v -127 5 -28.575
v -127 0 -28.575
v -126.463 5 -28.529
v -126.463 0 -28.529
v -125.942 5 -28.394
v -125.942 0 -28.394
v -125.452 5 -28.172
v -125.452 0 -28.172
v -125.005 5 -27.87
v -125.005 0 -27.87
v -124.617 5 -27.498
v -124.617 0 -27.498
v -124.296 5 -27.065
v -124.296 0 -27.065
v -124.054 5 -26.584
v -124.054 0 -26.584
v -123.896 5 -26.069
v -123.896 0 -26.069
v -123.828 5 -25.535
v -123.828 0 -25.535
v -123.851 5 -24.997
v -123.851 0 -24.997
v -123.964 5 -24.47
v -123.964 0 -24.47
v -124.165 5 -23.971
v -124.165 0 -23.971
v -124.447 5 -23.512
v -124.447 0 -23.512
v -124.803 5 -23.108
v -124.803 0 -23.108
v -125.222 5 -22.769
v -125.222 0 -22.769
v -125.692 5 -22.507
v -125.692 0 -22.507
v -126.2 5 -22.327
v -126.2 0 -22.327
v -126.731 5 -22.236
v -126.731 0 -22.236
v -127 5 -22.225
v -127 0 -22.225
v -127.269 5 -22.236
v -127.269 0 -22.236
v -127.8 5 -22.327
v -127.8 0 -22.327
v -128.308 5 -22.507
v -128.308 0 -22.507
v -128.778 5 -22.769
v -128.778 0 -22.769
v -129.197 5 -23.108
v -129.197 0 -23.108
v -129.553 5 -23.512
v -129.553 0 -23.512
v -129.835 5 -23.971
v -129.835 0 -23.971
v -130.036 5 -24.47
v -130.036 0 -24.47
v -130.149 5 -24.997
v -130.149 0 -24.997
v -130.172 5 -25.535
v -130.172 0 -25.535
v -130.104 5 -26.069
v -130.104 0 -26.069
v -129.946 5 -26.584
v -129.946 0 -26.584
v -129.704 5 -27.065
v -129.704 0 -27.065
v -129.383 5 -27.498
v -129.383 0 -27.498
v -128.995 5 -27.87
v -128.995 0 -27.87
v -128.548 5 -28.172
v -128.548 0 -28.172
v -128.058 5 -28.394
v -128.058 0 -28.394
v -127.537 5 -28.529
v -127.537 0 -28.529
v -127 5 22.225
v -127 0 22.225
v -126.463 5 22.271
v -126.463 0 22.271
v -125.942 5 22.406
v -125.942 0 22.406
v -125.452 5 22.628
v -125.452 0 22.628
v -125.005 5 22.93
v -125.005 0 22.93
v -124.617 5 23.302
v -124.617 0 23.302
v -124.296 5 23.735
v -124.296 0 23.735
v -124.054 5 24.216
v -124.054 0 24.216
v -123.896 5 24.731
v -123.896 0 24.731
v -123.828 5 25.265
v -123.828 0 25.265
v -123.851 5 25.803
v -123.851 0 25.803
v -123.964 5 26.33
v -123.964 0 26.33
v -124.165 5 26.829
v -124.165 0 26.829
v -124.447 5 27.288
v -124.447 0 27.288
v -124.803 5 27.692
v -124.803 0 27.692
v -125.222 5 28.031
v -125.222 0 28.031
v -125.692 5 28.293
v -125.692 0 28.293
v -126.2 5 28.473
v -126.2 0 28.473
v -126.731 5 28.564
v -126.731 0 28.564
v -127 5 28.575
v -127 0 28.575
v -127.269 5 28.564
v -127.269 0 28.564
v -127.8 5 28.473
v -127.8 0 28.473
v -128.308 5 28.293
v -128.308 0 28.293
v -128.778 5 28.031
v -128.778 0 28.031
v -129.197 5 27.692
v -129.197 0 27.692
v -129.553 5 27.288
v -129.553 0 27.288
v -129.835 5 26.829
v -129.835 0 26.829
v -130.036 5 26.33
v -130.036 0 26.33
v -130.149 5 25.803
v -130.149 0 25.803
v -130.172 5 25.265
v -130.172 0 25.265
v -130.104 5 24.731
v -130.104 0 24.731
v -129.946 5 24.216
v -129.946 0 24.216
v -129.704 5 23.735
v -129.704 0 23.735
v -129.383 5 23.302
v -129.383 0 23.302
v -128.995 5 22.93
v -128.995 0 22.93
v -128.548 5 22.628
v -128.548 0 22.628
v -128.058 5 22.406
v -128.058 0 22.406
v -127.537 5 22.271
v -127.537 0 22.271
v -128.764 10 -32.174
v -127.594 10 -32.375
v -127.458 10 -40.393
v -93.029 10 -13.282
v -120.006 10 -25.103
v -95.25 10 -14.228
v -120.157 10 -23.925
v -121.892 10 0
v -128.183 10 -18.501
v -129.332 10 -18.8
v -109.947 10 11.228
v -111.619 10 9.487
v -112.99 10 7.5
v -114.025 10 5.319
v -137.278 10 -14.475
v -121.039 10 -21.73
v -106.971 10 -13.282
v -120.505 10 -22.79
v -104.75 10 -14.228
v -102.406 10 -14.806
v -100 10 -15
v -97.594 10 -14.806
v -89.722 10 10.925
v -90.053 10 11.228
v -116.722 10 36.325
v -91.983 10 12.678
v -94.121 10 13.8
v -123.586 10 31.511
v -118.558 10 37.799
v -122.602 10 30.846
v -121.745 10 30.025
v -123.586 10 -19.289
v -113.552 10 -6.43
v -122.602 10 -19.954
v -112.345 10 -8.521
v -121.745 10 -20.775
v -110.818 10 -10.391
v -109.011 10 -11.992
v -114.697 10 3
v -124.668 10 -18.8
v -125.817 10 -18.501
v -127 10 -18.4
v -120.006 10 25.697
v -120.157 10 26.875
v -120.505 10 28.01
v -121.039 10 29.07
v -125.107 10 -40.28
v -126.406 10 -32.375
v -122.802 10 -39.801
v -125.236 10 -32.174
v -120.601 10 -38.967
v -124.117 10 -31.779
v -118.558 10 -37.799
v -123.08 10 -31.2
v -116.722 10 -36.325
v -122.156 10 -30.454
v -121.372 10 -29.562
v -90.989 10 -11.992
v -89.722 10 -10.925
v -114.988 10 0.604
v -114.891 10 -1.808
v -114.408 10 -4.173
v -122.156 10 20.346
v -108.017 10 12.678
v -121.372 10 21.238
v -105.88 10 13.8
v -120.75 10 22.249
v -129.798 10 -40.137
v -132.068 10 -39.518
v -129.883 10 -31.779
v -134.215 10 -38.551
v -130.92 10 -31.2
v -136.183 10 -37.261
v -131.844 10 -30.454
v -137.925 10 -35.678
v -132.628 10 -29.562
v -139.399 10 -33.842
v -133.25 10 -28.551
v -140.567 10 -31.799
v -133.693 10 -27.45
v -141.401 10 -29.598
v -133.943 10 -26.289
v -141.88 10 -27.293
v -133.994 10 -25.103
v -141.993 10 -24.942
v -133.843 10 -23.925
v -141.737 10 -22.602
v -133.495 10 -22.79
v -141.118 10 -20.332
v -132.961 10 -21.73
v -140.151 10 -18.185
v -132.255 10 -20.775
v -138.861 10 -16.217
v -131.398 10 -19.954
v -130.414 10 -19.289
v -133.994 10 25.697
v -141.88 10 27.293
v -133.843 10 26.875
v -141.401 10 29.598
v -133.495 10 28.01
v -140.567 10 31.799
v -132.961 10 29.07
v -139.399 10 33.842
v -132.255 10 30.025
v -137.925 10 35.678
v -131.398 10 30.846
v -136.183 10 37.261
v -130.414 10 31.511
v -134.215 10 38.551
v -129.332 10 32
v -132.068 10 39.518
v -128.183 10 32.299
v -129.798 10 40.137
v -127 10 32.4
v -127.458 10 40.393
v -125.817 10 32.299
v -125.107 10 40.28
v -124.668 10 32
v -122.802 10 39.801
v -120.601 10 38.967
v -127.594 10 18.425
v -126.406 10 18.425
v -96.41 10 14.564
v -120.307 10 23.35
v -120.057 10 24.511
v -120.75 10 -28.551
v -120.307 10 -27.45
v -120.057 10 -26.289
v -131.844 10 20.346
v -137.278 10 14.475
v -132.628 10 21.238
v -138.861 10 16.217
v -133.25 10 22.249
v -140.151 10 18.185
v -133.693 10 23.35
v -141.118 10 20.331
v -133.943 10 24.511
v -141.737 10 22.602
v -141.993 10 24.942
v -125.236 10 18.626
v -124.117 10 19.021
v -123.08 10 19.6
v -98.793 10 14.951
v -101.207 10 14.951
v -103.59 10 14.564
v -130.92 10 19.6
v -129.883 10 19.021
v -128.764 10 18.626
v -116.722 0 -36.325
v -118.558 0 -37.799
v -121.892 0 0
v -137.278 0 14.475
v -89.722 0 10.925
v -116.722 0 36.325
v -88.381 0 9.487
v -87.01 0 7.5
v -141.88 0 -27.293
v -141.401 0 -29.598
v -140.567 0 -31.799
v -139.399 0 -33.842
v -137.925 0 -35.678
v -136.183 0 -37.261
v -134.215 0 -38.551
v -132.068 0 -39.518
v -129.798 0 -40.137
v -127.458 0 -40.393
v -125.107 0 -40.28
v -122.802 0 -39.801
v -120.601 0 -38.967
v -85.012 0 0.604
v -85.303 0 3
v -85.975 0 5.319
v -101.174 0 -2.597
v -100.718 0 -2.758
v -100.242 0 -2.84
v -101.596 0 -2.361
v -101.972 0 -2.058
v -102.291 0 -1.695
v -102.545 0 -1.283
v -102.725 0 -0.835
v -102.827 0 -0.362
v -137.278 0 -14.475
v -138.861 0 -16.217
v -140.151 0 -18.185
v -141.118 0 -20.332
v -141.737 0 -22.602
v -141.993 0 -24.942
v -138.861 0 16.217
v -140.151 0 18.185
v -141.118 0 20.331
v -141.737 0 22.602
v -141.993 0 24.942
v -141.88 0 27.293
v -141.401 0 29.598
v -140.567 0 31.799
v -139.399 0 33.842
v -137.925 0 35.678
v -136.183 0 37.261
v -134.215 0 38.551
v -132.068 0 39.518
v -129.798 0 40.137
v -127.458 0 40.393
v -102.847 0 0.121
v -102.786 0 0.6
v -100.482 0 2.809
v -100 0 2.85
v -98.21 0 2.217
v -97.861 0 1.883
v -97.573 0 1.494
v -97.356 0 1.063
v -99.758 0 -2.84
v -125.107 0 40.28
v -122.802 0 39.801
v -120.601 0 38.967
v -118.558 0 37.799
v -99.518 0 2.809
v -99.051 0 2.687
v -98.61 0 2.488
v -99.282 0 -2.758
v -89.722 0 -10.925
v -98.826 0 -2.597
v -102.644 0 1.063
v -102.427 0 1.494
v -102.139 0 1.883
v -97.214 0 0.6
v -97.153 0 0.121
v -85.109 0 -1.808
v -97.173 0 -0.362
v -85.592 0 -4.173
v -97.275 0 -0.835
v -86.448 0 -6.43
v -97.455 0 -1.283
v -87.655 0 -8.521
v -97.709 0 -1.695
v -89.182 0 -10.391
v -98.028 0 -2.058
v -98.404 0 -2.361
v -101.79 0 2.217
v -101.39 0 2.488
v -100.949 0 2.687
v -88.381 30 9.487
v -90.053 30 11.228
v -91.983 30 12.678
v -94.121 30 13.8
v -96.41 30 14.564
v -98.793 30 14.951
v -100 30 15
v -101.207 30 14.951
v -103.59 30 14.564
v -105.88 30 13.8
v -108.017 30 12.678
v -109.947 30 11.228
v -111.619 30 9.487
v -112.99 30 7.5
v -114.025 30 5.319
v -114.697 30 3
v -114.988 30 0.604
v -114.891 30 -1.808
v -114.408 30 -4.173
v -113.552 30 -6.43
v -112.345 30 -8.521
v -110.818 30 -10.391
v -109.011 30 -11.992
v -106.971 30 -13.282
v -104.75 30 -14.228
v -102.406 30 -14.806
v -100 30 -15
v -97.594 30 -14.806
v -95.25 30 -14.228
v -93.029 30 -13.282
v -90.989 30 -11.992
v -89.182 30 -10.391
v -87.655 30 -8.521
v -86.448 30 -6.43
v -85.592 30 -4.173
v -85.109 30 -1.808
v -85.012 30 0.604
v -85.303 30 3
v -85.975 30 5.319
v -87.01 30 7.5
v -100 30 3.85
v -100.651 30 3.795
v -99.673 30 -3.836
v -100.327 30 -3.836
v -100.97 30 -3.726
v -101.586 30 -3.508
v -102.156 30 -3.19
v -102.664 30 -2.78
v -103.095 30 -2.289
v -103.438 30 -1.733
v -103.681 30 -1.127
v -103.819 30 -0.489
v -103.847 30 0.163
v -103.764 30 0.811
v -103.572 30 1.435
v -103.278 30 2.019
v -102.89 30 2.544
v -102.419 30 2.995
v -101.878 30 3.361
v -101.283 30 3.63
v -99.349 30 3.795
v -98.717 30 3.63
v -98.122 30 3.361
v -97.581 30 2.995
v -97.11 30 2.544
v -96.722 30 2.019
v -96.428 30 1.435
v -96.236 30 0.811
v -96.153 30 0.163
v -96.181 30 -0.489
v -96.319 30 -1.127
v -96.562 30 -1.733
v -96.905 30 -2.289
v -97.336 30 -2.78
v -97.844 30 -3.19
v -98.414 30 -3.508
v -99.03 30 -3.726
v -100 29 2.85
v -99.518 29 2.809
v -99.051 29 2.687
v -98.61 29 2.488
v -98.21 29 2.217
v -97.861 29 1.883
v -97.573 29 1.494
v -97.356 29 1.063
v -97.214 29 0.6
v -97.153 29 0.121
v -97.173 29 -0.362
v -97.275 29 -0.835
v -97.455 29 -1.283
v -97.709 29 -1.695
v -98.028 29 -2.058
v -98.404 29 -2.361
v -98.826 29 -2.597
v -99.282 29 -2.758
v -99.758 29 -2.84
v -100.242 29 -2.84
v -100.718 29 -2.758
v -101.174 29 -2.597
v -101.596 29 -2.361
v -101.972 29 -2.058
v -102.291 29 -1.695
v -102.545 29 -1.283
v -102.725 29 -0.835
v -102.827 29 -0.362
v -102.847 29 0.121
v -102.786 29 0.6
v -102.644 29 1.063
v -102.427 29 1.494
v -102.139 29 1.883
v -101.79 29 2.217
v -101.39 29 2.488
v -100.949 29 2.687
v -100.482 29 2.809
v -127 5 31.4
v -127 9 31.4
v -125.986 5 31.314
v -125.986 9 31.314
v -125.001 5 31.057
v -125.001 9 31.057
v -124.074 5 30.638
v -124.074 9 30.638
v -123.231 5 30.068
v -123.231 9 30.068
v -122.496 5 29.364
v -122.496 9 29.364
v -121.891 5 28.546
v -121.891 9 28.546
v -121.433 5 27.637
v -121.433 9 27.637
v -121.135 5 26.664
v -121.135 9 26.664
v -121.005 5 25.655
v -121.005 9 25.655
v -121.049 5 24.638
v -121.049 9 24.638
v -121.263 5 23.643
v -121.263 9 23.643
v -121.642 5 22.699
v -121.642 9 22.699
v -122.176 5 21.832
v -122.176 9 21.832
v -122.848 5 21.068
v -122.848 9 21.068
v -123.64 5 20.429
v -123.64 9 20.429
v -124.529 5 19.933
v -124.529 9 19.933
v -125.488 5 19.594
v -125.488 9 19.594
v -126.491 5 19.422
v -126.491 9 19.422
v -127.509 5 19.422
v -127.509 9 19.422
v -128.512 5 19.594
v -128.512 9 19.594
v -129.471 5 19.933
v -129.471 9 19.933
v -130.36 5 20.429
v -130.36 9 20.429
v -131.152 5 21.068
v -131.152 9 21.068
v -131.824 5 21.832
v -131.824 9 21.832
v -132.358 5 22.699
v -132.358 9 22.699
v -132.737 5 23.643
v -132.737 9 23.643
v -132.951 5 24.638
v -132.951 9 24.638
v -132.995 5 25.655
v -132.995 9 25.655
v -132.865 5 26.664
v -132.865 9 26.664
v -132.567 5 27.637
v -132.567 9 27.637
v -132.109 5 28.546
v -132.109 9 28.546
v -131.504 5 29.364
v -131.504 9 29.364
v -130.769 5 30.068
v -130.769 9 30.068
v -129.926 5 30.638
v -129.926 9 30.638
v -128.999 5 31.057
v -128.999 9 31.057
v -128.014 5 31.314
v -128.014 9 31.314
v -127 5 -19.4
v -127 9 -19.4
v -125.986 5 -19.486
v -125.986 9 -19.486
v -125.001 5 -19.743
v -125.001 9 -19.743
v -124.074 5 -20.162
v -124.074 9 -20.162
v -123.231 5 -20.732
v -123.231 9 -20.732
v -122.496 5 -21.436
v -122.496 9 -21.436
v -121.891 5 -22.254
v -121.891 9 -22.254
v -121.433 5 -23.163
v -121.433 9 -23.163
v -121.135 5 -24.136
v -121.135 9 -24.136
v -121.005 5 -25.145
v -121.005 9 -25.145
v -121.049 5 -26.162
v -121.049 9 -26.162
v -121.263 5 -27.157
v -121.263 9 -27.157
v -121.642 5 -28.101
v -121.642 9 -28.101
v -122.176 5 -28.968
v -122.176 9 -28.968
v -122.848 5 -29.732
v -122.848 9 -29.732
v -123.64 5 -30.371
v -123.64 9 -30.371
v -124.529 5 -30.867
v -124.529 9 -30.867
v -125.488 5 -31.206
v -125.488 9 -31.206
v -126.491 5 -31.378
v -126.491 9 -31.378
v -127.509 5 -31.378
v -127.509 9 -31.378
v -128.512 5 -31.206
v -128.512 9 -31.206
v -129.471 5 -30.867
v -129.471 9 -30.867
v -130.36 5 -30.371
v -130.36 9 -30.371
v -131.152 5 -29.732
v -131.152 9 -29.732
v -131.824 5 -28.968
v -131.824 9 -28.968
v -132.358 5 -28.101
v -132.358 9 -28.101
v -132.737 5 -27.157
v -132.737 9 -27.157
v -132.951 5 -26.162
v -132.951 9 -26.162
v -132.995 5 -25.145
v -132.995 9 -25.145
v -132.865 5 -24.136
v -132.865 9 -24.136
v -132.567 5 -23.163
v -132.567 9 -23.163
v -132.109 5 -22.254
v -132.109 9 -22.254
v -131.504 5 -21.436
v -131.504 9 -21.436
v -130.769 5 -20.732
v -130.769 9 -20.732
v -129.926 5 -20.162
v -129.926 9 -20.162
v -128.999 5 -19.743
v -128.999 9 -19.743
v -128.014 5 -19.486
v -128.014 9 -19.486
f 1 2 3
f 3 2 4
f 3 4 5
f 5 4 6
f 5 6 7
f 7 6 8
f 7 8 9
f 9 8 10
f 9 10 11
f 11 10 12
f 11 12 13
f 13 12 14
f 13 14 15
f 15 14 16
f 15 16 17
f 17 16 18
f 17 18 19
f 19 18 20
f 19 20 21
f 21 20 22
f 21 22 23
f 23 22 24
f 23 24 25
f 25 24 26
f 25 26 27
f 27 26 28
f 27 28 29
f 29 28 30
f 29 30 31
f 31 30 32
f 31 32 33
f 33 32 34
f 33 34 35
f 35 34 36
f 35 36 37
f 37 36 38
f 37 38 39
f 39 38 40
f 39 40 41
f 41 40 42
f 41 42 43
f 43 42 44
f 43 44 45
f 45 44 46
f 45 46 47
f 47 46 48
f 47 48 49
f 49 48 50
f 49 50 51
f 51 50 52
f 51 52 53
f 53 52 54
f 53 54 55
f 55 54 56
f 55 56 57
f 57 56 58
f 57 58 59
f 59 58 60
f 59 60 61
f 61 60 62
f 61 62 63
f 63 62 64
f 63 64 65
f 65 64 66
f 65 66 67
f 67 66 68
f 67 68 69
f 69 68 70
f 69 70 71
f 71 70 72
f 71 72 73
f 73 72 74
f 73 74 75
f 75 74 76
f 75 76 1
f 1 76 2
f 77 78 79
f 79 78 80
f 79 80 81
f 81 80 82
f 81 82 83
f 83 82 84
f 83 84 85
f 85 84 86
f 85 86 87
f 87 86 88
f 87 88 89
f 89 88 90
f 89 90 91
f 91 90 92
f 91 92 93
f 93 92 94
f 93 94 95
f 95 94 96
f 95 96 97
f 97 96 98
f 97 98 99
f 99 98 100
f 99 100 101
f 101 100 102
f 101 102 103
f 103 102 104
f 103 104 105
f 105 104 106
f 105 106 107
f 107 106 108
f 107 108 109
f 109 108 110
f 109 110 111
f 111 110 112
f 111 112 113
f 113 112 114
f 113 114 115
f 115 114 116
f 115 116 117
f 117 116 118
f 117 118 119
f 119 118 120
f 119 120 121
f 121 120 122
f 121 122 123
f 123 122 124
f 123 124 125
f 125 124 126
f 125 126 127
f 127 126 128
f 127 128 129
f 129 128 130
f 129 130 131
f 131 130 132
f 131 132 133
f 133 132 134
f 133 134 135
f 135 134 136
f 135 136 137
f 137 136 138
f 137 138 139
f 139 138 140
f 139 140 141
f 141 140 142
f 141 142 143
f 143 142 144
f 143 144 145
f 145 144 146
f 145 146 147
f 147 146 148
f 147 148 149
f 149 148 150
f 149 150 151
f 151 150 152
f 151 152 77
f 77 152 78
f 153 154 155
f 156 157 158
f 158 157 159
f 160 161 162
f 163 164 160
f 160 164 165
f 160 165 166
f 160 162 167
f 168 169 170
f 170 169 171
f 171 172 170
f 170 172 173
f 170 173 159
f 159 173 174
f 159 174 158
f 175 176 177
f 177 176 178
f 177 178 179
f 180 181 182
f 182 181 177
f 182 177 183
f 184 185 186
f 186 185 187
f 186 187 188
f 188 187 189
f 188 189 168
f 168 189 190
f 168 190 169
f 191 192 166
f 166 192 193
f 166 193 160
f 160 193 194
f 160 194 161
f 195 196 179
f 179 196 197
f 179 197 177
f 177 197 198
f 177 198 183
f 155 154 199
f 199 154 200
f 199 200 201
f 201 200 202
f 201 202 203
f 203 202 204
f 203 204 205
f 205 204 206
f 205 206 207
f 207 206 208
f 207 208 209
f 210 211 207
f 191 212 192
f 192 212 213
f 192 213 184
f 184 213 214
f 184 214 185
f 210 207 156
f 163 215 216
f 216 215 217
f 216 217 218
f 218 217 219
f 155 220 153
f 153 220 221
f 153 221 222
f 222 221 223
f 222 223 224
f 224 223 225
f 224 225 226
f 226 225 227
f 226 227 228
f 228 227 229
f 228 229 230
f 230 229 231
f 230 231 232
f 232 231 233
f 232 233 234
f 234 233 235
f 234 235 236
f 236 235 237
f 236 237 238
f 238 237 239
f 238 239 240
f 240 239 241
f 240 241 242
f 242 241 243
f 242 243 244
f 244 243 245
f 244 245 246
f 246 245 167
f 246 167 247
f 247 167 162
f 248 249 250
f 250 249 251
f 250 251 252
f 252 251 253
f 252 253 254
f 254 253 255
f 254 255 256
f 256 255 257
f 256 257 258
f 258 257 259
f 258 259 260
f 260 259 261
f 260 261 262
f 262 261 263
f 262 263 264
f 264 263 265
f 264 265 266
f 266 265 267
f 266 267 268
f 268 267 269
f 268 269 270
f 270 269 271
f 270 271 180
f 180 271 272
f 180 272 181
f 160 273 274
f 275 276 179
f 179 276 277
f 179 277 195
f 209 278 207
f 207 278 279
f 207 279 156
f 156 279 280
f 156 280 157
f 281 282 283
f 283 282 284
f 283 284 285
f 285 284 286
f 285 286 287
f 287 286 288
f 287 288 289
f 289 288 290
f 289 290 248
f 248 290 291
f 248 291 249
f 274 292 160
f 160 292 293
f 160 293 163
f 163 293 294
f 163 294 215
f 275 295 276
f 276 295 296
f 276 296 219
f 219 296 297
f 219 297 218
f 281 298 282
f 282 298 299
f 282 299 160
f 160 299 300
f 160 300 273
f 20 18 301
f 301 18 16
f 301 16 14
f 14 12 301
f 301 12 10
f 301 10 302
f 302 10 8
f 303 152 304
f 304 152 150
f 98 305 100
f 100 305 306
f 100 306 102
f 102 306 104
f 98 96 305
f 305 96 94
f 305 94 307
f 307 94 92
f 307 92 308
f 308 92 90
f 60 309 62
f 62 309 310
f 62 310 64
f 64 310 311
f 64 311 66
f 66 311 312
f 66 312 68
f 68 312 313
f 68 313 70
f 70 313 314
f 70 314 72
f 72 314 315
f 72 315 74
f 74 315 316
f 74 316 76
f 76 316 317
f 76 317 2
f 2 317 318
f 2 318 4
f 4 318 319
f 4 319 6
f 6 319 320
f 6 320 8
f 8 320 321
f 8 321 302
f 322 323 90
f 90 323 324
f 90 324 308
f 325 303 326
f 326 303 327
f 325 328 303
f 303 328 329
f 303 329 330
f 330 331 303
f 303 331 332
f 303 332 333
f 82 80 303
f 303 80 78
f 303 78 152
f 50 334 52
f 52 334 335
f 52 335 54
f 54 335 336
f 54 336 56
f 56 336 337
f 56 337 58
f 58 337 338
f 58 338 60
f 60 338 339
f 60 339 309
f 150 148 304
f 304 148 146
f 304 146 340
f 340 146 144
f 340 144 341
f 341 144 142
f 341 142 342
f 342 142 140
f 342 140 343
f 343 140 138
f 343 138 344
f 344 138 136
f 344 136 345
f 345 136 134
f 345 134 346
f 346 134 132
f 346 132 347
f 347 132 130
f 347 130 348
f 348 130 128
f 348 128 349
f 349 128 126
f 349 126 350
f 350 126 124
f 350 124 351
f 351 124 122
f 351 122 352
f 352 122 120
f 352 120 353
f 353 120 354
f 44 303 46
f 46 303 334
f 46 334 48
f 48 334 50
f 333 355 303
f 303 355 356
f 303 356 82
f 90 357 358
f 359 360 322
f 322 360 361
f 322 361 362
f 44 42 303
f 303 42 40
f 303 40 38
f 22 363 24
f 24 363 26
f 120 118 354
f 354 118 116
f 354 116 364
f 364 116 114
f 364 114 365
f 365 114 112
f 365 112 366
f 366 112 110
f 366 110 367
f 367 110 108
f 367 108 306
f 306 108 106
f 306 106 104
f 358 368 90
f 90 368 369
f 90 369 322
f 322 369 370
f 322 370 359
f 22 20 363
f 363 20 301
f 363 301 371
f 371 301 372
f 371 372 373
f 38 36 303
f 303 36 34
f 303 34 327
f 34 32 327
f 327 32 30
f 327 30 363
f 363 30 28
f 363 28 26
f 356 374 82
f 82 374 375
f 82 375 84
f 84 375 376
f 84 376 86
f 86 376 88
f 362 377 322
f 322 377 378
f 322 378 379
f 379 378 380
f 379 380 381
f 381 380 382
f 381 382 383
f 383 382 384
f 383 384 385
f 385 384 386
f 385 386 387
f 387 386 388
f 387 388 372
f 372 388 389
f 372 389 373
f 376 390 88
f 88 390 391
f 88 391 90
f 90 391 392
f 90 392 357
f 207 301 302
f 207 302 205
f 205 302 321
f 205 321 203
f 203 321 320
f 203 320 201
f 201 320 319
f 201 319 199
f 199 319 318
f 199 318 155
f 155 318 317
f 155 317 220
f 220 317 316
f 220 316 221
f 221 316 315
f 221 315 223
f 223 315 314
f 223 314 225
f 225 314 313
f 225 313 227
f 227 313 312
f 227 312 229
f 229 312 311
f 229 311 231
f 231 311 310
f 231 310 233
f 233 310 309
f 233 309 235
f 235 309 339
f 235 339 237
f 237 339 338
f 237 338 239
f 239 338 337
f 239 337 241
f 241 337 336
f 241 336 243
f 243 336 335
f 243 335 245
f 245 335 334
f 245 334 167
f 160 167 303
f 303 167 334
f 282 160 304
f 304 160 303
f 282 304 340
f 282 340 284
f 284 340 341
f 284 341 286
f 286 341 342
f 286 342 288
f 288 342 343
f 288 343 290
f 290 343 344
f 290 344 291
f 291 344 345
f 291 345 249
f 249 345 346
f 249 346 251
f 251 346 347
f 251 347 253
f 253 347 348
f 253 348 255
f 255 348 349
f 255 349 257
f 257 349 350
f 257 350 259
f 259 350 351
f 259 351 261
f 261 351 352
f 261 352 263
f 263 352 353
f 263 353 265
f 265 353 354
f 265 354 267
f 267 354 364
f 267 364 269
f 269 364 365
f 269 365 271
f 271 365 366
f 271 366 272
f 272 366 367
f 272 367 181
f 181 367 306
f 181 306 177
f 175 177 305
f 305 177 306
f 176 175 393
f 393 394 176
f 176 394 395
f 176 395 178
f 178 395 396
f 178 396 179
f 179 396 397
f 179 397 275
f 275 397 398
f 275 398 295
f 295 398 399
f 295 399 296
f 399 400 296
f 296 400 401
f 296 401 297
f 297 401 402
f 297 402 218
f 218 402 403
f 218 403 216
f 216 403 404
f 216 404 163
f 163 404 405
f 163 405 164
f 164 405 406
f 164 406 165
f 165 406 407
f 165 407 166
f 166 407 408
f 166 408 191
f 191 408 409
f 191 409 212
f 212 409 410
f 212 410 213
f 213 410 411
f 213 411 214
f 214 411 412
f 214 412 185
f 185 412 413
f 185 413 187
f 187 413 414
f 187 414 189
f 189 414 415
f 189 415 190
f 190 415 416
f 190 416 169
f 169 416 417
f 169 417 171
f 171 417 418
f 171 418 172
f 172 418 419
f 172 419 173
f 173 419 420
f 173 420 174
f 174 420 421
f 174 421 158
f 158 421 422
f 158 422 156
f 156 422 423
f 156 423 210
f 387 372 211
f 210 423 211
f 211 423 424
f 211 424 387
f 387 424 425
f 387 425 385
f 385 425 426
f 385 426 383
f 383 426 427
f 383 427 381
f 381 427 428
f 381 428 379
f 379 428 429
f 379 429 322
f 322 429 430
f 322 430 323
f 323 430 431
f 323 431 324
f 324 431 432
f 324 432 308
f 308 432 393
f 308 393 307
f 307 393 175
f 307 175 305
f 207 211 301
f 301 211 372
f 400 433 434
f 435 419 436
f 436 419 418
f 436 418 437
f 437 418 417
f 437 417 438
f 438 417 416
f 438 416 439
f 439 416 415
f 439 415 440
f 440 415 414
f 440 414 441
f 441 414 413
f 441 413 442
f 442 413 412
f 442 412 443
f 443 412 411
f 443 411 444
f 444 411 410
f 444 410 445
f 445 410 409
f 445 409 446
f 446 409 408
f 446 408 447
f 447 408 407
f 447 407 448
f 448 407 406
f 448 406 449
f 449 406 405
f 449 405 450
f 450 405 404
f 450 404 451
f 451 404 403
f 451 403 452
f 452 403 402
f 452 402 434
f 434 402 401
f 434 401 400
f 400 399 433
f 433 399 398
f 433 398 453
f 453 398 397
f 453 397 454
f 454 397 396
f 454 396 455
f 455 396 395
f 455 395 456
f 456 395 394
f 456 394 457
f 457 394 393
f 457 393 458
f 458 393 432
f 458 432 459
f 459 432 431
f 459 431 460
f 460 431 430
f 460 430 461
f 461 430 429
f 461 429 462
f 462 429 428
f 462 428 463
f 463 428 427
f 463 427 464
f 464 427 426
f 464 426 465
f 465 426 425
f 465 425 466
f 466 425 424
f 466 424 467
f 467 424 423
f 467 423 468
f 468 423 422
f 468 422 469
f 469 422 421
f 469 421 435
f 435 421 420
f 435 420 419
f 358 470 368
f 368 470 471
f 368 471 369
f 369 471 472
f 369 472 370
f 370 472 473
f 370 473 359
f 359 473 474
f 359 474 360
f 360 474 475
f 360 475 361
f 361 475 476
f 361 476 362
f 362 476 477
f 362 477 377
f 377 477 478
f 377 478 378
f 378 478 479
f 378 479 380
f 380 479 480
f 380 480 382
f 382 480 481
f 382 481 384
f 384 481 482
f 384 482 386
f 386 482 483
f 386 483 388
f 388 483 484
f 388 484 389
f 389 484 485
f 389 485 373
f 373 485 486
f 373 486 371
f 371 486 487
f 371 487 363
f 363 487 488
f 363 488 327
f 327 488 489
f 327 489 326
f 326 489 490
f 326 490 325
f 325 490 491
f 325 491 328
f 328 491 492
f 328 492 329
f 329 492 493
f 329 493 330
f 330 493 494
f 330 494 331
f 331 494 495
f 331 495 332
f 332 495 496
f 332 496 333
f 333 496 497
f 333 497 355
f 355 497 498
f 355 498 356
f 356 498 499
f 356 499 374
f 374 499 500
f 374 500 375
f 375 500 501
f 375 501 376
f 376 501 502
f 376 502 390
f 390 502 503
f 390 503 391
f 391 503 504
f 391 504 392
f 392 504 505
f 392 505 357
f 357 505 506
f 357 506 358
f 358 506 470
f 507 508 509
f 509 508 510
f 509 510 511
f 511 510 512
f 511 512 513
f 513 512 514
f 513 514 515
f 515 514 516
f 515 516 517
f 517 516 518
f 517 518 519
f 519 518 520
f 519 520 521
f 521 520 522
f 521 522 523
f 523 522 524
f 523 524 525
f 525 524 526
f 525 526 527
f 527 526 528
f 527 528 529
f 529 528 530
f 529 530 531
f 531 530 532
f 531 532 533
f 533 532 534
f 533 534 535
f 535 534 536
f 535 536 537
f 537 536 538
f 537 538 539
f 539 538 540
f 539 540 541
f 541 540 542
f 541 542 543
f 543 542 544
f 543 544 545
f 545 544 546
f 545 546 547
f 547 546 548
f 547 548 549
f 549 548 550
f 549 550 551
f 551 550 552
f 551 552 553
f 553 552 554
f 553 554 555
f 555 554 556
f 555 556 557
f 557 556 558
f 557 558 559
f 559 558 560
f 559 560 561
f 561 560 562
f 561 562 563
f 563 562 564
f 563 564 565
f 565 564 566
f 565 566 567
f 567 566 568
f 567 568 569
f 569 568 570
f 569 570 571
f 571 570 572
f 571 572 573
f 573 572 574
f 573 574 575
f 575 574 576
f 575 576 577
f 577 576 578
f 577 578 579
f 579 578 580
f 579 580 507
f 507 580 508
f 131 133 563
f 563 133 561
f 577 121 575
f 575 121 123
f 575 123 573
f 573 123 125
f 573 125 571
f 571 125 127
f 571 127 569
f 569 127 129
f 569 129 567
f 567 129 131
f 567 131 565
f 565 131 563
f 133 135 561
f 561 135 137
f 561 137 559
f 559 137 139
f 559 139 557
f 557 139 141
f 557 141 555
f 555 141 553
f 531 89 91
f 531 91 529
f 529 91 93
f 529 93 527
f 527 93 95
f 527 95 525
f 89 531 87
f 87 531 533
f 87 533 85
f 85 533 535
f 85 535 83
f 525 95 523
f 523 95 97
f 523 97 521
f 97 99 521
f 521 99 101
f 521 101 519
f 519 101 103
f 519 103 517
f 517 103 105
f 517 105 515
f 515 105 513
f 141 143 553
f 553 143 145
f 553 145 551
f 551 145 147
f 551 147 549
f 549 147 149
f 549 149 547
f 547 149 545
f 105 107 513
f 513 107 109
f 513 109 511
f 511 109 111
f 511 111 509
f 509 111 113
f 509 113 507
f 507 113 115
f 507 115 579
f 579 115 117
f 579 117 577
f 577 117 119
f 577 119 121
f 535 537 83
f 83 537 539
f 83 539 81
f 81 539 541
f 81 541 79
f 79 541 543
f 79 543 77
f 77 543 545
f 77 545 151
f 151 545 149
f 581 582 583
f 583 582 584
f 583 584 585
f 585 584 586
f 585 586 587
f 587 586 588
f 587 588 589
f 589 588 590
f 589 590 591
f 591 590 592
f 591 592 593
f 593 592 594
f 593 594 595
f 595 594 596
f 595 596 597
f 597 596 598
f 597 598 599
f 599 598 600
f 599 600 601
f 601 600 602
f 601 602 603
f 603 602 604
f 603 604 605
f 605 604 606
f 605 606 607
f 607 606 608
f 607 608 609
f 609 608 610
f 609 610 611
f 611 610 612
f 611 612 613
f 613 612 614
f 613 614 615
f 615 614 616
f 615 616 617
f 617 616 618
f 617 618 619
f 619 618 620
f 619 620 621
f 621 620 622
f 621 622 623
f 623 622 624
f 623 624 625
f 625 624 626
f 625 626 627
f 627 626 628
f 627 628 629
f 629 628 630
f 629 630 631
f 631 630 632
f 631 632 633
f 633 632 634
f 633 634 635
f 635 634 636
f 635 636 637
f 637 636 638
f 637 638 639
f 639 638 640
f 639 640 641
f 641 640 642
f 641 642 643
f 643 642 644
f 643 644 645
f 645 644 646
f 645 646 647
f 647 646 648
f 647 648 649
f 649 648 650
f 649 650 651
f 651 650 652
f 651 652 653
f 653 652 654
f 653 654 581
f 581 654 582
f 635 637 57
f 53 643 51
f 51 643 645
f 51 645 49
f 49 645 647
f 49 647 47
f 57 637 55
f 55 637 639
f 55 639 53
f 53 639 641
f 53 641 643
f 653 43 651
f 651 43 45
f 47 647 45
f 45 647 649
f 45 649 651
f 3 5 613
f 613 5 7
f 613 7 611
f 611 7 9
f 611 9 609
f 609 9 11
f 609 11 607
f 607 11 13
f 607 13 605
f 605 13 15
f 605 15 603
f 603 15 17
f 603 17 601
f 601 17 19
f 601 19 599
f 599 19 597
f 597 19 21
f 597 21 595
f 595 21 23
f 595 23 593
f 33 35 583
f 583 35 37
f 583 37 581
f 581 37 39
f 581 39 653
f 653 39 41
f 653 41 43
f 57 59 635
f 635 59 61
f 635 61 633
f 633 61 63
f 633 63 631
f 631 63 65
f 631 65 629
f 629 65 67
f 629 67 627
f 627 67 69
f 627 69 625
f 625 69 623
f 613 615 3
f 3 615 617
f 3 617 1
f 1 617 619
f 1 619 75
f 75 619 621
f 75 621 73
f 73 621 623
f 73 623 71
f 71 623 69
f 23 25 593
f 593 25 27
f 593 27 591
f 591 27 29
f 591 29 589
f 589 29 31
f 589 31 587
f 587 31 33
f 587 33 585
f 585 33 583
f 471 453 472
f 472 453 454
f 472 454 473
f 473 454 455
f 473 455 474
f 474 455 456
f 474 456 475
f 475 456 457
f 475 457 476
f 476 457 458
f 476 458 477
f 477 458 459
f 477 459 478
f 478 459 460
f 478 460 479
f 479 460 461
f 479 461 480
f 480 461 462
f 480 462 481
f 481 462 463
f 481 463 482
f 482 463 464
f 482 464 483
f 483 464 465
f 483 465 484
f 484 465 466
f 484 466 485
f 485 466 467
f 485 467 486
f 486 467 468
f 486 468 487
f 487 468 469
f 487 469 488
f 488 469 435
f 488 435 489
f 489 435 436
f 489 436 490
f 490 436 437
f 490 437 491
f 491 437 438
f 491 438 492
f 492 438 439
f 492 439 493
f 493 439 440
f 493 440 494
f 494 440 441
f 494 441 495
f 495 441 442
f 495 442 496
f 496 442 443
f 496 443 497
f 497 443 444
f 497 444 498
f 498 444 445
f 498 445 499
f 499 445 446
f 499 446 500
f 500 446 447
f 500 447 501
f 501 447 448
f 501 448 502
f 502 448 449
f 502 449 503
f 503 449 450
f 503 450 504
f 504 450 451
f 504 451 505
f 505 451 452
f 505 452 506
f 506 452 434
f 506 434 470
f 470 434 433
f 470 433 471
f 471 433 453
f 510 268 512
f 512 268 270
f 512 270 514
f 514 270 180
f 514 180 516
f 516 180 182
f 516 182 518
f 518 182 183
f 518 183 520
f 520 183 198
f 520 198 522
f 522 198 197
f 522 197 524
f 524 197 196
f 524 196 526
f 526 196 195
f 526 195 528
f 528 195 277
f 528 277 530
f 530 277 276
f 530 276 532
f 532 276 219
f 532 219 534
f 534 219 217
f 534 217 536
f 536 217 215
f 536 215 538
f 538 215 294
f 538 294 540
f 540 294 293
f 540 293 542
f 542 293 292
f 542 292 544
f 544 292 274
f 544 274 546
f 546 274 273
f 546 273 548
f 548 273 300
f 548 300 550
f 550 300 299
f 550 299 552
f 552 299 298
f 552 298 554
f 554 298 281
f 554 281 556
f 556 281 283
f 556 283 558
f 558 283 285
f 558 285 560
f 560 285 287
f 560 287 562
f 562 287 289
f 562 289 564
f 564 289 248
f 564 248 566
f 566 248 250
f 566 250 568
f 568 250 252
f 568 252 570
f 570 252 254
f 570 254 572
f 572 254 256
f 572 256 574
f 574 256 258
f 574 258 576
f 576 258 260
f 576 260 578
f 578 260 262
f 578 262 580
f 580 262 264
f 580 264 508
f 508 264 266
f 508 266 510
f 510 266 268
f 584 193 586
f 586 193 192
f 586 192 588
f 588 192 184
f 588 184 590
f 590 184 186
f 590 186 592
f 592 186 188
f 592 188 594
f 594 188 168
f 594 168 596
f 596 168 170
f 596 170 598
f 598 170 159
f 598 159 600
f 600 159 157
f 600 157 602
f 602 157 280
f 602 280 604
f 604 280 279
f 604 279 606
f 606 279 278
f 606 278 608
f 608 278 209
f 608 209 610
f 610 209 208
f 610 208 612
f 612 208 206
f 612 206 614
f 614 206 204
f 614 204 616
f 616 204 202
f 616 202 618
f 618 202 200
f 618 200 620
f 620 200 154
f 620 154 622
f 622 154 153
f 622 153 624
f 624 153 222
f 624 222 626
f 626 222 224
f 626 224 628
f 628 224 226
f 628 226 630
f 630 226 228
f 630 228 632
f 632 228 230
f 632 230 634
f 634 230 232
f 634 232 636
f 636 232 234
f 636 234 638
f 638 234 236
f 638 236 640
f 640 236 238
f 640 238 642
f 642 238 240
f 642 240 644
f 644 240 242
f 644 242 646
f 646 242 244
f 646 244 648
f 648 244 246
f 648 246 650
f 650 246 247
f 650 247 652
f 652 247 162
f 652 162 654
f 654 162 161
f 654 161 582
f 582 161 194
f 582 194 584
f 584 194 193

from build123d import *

# Parameters (mm, degrees)
SKETCH4_R           = 3.175
BOSS_EXTRUDE1_DEPTH = 10
SKETCH5_R           = 15
BOSS_EXTRUDE2_DEPTH = 20
SKETCH6_R           = 2.85
CUT_EXTRUDE1_DEPTH  = 38
SKETCH7_R           = 6
CUT_EXTRUDE2_DEPTH  = 5
SKETCH8_R           = 6
CUT_EXTRUDE3_DEPTH  = 5
CHAMFER1_SIZE       = 1


with BuildPart() as part:
    # Sketch4 → Boss-Extrude1 (new body)
    with BuildSketch(Plane(origin=(0, 0, 0), x_dir=(1, 0, 0), z_dir=(0, 1, 0))):
        with BuildLine():
            Line((-89.722054171, 10.925375487), (-116.722054171, 36.325375487))
            ThreePointArc((-116.722054171, 36.325375487), (-137.925375487, 35.677945829), (-137.277945829, 14.474624513))
            Line((-137.277945829, 14.474624513), (-121.891533945, 0))
            Line((-121.891533945, 0), (-137.277945829, -14.474624513))
            ThreePointArc((-137.277945829, -14.474624513), (-137.925375487, -35.677945829), (-116.722054171, -36.325375487))
            Line((-116.722054171, -36.325375487), (-89.722054171, -10.925375487))
            ThreePointArc((-89.722054171, -10.925375487), (-85, 0), (-89.722054171, 10.925375487))
        make_face()
        with Locations((-127, 25.4)):
            Circle(SKETCH4_R, mode=Mode.SUBTRACT)
        with Locations((-127, -25.4)):
            Circle(SKETCH4_R, mode=Mode.SUBTRACT)
    extrude(amount=BOSS_EXTRUDE1_DEPTH)

    # Sketch5 → Boss-Extrude2 (add)
    with BuildSketch(Plane(origin=(0, 10, 0), x_dir=(1, 0, 0), z_dir=(0, 1, 0))):
        with Locations((-100, 0)):
            Circle(SKETCH5_R)
    extrude(amount=BOSS_EXTRUDE2_DEPTH)

    # Sketch6 → Cut-Extrude1 (cut)
    with BuildSketch(Plane(origin=(0, 30, 0), x_dir=(1, 0, 0), z_dir=(0, 1, 0))):
        with Locations((-100, 0)):
            Circle(SKETCH6_R)
    extrude(amount=-CUT_EXTRUDE1_DEPTH, mode=Mode.SUBTRACT)

    # Sketch7 → Cut-Extrude2 (cut)
    with BuildSketch(Plane(origin=(0, 10, 0), x_dir=(1, 0, 0), z_dir=(0, 1, 0))):
        with Locations((-127, -25.4)):
            Circle(SKETCH7_R)
    extrude(amount=-CUT_EXTRUDE2_DEPTH, mode=Mode.SUBTRACT)

    # Sketch8 → Cut-Extrude3 (cut)
    with BuildSketch(Plane(origin=(0, 10, 0), x_dir=(1, 0, 0), z_dir=(0, 1, 0))):
        with Locations((-127, 25.4)):
            Circle(SKETCH8_R)
    extrude(amount=-CUT_EXTRUDE3_DEPTH, mode=Mode.SUBTRACT)

    # Chamfer1
    chamfer1_edges = [part.edges().sort_by_distance(p)[0] for p in [
        (-102.85, 30, 0),
        (-133, 10, 25.4),
        (-133, 10, -25.4),
    ]]
    chamfer(chamfer1_edges, length=CHAMFER1_SIZE)


solid = part.part
